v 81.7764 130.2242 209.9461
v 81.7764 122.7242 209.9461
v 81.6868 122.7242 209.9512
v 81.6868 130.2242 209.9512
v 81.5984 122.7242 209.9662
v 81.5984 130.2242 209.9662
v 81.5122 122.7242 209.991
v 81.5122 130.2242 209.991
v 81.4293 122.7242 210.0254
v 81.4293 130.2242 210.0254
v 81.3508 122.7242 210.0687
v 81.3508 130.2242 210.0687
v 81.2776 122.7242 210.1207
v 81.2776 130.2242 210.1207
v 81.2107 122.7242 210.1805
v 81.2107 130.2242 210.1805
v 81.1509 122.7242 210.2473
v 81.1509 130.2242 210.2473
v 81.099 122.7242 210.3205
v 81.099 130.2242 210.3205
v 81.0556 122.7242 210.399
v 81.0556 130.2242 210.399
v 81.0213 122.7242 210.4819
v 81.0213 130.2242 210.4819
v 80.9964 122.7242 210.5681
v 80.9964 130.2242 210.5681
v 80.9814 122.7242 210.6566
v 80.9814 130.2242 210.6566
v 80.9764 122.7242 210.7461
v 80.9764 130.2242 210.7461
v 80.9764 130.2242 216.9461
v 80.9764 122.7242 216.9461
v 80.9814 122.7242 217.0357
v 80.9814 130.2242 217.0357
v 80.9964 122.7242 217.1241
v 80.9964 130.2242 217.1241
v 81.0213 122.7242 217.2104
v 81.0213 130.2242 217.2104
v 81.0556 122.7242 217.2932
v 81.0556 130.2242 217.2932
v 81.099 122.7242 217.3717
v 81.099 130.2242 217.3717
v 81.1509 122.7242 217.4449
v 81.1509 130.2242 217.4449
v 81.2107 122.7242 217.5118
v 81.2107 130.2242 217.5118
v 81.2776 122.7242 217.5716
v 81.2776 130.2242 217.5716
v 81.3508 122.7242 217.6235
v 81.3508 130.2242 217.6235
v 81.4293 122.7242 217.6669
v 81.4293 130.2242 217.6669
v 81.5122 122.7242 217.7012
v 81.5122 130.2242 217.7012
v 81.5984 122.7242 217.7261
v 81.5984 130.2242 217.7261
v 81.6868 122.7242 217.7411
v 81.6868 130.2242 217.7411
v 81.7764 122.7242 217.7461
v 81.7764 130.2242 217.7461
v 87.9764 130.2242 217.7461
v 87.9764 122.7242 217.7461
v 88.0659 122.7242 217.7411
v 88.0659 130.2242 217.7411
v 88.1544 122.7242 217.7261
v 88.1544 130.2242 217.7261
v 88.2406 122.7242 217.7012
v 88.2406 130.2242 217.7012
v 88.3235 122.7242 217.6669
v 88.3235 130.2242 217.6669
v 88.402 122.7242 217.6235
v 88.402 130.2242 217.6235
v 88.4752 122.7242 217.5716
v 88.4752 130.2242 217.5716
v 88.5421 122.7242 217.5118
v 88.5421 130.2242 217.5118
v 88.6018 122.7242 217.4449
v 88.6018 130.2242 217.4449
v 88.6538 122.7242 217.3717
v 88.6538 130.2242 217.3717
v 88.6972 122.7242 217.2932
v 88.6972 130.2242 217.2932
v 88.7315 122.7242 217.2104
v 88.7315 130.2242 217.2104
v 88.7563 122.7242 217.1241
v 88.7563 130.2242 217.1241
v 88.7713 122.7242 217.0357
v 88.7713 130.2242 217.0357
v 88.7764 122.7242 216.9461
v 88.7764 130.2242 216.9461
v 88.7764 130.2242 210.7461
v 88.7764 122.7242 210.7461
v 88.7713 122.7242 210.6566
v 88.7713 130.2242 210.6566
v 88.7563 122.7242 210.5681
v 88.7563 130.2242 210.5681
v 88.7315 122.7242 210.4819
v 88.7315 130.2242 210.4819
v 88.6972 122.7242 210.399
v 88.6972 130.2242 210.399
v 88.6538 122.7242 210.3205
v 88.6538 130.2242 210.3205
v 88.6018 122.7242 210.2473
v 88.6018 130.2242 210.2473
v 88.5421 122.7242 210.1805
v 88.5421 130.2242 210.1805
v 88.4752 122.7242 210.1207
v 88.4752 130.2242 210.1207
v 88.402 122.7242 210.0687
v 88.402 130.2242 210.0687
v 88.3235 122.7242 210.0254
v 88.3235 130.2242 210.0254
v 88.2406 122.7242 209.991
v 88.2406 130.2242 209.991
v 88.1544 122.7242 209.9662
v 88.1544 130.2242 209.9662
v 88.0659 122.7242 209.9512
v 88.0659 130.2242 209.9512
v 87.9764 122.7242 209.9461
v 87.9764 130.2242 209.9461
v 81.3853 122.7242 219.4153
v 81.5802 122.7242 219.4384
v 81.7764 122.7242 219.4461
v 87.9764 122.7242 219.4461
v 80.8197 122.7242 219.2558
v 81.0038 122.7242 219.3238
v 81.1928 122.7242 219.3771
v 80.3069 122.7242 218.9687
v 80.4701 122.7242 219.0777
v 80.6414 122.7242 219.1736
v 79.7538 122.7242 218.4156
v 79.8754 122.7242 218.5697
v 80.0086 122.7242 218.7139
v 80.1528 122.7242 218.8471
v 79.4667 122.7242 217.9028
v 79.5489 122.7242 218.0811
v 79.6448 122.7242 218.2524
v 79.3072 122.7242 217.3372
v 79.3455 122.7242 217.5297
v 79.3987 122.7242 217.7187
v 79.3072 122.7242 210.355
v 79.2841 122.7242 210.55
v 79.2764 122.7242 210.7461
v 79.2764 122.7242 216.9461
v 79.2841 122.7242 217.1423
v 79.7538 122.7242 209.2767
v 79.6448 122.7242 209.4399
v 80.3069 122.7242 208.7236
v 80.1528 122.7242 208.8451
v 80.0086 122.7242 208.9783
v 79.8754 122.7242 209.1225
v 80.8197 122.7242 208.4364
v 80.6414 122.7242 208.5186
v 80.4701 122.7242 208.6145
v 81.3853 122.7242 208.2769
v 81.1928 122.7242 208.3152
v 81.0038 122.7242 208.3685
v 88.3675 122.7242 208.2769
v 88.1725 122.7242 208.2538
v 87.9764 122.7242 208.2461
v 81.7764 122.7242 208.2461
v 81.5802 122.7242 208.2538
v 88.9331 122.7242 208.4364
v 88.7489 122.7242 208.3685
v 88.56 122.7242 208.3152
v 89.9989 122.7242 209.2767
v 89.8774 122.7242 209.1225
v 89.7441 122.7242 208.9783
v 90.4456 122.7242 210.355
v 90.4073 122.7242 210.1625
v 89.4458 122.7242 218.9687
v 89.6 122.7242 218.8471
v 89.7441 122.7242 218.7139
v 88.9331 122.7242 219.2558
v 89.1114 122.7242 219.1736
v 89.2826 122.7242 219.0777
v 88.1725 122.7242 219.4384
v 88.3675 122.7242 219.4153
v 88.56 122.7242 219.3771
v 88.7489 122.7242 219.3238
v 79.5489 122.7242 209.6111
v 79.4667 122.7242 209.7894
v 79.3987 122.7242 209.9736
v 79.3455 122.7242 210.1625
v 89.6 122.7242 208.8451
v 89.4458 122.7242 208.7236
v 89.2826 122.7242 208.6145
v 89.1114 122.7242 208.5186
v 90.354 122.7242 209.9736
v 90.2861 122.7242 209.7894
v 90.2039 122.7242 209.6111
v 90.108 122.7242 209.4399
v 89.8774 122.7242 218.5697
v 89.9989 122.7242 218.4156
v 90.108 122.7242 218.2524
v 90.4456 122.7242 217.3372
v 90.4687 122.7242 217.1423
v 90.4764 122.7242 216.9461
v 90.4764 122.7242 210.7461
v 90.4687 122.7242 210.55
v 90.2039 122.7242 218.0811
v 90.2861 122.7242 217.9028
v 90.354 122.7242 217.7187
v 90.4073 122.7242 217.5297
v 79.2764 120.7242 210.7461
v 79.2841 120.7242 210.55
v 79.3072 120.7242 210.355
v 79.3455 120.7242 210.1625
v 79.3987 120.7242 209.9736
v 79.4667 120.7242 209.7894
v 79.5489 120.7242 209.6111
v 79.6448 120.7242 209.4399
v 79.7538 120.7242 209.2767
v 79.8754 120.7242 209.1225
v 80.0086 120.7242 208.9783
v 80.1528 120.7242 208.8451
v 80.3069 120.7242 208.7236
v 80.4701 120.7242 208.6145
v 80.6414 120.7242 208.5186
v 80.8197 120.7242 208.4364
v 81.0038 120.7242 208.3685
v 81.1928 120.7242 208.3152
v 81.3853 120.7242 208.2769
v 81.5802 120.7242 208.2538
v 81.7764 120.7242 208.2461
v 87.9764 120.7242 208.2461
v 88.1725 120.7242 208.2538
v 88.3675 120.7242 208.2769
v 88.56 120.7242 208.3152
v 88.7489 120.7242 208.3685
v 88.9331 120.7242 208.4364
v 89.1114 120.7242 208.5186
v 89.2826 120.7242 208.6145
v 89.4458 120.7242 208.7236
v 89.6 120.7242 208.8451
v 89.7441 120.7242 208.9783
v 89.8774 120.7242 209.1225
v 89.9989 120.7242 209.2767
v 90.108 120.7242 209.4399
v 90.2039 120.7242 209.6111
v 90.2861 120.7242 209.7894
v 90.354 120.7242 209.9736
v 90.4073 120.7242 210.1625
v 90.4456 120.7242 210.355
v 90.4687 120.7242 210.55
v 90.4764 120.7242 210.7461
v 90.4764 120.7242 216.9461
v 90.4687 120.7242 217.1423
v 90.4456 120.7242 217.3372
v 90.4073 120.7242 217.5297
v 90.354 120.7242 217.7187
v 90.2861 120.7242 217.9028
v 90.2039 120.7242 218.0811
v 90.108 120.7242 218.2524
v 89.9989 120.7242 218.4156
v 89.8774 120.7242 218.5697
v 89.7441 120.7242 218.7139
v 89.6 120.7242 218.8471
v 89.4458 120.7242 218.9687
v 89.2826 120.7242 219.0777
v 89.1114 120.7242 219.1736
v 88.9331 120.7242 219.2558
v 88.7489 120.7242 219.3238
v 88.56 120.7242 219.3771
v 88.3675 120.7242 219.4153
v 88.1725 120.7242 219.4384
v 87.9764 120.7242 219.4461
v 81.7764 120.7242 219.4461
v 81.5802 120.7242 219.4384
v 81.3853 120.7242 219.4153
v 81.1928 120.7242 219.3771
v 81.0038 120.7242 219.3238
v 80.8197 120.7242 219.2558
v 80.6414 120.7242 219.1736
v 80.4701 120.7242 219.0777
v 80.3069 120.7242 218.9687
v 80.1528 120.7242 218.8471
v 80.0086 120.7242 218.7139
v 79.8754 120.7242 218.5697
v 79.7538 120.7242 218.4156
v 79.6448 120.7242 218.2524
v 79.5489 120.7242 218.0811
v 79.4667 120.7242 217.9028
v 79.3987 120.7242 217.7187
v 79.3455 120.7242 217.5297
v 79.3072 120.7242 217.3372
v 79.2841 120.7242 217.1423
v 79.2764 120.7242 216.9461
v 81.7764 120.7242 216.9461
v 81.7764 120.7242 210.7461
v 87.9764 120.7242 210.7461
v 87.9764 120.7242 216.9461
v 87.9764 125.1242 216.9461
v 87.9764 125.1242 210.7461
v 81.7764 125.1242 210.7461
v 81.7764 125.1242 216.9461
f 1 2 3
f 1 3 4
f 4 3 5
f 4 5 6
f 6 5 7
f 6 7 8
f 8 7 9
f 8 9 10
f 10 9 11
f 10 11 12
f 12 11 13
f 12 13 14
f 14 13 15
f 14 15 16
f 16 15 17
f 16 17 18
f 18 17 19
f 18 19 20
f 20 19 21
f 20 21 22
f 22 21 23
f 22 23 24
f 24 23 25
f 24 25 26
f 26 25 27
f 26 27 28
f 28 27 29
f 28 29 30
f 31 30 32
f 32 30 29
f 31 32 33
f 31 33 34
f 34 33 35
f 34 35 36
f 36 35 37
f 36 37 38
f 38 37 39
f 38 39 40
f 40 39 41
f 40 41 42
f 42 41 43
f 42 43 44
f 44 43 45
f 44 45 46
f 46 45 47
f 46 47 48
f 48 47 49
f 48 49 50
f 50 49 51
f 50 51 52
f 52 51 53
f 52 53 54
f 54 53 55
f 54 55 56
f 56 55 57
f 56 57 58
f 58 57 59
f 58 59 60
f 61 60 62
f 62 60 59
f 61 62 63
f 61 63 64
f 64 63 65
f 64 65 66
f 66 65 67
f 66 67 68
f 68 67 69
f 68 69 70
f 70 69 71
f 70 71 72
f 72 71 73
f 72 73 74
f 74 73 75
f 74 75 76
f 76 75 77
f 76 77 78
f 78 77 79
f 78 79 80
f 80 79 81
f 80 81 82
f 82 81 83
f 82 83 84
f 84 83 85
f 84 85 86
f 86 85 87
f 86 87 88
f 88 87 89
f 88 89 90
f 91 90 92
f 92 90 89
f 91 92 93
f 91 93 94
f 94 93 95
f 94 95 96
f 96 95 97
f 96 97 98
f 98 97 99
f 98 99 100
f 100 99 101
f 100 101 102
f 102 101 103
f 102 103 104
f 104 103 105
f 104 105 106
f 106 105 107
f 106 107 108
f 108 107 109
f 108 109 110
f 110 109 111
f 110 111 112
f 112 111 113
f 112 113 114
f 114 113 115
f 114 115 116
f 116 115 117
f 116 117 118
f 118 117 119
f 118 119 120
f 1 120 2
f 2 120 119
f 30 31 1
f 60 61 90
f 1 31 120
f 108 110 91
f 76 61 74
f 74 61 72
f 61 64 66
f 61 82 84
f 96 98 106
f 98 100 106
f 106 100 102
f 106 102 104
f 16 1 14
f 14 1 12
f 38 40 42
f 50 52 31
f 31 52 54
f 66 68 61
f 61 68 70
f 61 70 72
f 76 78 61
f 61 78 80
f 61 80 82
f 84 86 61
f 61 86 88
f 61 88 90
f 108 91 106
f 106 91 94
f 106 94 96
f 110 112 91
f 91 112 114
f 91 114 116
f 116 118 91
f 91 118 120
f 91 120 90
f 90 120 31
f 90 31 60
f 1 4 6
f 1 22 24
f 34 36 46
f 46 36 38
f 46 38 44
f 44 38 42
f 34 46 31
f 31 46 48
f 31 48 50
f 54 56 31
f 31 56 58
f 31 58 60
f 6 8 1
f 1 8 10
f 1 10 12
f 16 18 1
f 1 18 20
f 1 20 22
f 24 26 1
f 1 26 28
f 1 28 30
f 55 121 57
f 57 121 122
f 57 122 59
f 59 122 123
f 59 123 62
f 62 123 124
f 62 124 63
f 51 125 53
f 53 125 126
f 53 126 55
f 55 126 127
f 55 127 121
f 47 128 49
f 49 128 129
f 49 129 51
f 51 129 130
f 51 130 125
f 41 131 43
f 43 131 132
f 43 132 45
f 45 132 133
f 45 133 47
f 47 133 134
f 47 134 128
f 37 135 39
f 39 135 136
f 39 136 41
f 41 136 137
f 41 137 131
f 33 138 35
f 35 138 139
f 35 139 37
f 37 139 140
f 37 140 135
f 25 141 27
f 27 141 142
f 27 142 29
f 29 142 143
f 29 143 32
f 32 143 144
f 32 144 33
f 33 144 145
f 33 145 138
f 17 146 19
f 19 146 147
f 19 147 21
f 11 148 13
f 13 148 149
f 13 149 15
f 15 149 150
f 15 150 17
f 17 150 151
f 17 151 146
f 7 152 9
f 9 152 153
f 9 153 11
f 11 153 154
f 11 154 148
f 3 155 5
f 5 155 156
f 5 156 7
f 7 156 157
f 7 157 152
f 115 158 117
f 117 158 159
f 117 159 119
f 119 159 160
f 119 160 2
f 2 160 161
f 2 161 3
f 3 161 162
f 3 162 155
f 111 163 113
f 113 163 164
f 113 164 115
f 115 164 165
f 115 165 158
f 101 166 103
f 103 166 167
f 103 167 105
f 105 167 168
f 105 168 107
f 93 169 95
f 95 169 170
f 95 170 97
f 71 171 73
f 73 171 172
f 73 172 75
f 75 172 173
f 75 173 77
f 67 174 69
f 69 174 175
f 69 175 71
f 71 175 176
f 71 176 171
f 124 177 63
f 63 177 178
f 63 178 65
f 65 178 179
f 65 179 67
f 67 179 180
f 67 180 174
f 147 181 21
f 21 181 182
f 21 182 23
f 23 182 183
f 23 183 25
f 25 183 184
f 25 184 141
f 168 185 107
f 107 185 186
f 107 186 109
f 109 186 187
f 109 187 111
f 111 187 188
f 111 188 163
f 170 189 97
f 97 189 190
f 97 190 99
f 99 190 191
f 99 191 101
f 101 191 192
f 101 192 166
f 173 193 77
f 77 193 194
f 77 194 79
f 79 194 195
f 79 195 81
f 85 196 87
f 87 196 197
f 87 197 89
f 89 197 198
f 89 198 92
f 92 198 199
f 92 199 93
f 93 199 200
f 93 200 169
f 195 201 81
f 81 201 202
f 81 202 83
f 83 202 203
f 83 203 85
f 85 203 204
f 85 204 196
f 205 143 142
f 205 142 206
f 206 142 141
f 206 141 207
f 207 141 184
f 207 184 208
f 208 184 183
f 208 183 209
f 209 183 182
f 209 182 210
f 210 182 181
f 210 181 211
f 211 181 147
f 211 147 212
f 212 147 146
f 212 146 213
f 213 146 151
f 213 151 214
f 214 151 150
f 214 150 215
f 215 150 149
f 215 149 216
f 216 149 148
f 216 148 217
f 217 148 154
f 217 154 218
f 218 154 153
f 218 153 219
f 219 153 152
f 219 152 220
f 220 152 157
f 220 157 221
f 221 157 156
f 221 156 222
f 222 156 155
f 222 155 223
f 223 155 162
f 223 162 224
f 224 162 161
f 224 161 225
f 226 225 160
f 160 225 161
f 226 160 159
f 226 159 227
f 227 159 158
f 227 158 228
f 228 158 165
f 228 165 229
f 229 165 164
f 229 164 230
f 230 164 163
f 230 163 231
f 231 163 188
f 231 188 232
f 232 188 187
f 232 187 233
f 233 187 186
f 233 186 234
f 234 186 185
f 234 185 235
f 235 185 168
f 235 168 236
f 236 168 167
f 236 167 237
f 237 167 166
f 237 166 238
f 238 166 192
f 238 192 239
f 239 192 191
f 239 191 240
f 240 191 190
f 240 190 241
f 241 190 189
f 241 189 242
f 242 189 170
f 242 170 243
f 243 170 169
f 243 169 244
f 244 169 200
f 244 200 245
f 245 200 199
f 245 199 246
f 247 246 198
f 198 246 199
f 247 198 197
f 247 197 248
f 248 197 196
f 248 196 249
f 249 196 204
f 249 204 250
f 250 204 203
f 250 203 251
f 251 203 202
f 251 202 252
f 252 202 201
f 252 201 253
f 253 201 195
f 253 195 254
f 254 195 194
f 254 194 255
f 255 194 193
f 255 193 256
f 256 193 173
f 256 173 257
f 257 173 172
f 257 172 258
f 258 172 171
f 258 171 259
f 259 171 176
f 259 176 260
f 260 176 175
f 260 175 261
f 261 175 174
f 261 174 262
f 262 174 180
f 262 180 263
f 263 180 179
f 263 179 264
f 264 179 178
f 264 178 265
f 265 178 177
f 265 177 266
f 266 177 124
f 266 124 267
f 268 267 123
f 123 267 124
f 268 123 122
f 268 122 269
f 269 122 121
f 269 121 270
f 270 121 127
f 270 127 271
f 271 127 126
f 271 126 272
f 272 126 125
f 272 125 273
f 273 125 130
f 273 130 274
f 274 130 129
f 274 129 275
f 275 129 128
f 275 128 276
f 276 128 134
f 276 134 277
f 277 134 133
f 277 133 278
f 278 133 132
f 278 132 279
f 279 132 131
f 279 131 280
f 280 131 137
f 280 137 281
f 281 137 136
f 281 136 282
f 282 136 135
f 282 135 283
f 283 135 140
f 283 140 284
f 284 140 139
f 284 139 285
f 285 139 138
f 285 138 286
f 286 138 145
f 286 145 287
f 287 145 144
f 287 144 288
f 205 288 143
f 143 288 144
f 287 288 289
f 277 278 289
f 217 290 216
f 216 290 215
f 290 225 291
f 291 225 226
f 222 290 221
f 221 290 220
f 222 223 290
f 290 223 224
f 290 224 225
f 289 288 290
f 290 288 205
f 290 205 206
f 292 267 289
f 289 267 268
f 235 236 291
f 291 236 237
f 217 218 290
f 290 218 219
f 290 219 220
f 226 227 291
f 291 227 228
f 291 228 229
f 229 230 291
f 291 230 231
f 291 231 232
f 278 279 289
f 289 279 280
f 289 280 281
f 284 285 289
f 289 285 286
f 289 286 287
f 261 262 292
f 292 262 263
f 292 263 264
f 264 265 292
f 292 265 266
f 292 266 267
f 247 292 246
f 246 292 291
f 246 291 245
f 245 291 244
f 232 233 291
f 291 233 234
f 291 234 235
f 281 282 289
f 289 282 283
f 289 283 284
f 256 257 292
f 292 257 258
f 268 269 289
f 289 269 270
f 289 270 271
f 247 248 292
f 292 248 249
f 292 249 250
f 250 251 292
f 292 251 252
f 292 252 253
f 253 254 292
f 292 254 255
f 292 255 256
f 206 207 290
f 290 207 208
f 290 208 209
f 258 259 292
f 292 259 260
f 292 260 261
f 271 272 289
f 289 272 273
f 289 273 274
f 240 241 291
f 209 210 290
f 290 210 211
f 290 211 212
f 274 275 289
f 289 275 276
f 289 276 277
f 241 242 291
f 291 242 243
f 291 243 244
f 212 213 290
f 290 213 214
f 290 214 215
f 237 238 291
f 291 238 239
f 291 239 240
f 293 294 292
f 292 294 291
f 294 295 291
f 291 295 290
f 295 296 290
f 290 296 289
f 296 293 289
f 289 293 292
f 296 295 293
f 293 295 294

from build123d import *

# Parameters (mm, degrees)
BOSS_EXTRUDE1_START = 1
BOSS_EXTRUDE1_DEPTH = 7.5
BOSS_EXTRUDE2_DEPTH = 2
SKETCH3_W           = 6.2
SKETCH3_H           = 6.2
CUT_EXTRUDE1_DEPTH  = 4.4


with BuildPart() as part:
    # Sketch1 → Boss-Extrude1 (new body)
    with BuildSketch(Plane.XZ.offset(-123.724152422).offset(BOSS_EXTRUDE1_START)):
        with BuildLine():
            Line((80.976379089, 210.746126643), (80.976379089, 216.946126643))
            ThreePointArc((80.976379089, 216.946126643), (81.210693664, 217.511812068), (81.776379089, 217.746126643))
            Line((81.776379089, 217.746126643), (87.976379089, 217.746126643))
            ThreePointArc((87.976379089, 217.746126643), (88.542064514, 217.511812068), (88.776379089, 216.946126643))
            Line((88.776379089, 216.946126643), (88.776379089, 210.746126643))
            ThreePointArc((88.776379089, 210.746126643), (88.542064514, 210.180441218), (87.976379089, 209.946126643))
            Line((87.976379089, 209.946126643), (81.776379089, 209.946126643))
            ThreePointArc((81.776379089, 209.946126643), (81.210693664, 210.180441218), (80.976379089, 210.746126643))
        make_face()
    extrude(amount=-BOSS_EXTRUDE1_DEPTH)

    # Sketch2 → Boss-Extrude2 (add)
    with BuildSketch(Plane.XZ.offset(-122.724152422)):
        with BuildLine():
            Line((81.776379089, 208.246126643), (87.976379089, 208.246126643))
            ThreePointArc((87.976379089, 208.246126643), (89.744146042, 208.97835969), (90.476379089, 210.746126643))
            Line((90.476379089, 210.746126643), (90.476379089, 216.946126643))
            ThreePointArc((90.476379089, 216.946126643), (89.744146042, 218.713893596), (87.976379089, 219.446126643))
            Line((87.976379089, 219.446126643), (81.776379089, 219.446126643))
            ThreePointArc((81.776379089, 219.446126643), (80.008612136, 218.713893596), (79.276379089, 216.946126643))
            Line((79.276379089, 216.946126643), (79.276379089, 210.746126643))
            ThreePointArc((79.276379089, 210.746126643), (80.008612136, 208.97835969), (81.776379089, 208.246126643))
        make_face()
    extrude(amount=BOSS_EXTRUDE2_DEPTH)

    # Sketch3 → Cut-Extrude1 (cut)
    with BuildSketch(Plane.XZ.offset(-120.724152422)):
        with Locations((84.876379089, 213.846126643)):
            Rectangle(SKETCH3_W, SKETCH3_H)
    extrude(amount=-CUT_EXTRUDE1_DEPTH, mode=Mode.SUBTRACT)


solid = part.part
